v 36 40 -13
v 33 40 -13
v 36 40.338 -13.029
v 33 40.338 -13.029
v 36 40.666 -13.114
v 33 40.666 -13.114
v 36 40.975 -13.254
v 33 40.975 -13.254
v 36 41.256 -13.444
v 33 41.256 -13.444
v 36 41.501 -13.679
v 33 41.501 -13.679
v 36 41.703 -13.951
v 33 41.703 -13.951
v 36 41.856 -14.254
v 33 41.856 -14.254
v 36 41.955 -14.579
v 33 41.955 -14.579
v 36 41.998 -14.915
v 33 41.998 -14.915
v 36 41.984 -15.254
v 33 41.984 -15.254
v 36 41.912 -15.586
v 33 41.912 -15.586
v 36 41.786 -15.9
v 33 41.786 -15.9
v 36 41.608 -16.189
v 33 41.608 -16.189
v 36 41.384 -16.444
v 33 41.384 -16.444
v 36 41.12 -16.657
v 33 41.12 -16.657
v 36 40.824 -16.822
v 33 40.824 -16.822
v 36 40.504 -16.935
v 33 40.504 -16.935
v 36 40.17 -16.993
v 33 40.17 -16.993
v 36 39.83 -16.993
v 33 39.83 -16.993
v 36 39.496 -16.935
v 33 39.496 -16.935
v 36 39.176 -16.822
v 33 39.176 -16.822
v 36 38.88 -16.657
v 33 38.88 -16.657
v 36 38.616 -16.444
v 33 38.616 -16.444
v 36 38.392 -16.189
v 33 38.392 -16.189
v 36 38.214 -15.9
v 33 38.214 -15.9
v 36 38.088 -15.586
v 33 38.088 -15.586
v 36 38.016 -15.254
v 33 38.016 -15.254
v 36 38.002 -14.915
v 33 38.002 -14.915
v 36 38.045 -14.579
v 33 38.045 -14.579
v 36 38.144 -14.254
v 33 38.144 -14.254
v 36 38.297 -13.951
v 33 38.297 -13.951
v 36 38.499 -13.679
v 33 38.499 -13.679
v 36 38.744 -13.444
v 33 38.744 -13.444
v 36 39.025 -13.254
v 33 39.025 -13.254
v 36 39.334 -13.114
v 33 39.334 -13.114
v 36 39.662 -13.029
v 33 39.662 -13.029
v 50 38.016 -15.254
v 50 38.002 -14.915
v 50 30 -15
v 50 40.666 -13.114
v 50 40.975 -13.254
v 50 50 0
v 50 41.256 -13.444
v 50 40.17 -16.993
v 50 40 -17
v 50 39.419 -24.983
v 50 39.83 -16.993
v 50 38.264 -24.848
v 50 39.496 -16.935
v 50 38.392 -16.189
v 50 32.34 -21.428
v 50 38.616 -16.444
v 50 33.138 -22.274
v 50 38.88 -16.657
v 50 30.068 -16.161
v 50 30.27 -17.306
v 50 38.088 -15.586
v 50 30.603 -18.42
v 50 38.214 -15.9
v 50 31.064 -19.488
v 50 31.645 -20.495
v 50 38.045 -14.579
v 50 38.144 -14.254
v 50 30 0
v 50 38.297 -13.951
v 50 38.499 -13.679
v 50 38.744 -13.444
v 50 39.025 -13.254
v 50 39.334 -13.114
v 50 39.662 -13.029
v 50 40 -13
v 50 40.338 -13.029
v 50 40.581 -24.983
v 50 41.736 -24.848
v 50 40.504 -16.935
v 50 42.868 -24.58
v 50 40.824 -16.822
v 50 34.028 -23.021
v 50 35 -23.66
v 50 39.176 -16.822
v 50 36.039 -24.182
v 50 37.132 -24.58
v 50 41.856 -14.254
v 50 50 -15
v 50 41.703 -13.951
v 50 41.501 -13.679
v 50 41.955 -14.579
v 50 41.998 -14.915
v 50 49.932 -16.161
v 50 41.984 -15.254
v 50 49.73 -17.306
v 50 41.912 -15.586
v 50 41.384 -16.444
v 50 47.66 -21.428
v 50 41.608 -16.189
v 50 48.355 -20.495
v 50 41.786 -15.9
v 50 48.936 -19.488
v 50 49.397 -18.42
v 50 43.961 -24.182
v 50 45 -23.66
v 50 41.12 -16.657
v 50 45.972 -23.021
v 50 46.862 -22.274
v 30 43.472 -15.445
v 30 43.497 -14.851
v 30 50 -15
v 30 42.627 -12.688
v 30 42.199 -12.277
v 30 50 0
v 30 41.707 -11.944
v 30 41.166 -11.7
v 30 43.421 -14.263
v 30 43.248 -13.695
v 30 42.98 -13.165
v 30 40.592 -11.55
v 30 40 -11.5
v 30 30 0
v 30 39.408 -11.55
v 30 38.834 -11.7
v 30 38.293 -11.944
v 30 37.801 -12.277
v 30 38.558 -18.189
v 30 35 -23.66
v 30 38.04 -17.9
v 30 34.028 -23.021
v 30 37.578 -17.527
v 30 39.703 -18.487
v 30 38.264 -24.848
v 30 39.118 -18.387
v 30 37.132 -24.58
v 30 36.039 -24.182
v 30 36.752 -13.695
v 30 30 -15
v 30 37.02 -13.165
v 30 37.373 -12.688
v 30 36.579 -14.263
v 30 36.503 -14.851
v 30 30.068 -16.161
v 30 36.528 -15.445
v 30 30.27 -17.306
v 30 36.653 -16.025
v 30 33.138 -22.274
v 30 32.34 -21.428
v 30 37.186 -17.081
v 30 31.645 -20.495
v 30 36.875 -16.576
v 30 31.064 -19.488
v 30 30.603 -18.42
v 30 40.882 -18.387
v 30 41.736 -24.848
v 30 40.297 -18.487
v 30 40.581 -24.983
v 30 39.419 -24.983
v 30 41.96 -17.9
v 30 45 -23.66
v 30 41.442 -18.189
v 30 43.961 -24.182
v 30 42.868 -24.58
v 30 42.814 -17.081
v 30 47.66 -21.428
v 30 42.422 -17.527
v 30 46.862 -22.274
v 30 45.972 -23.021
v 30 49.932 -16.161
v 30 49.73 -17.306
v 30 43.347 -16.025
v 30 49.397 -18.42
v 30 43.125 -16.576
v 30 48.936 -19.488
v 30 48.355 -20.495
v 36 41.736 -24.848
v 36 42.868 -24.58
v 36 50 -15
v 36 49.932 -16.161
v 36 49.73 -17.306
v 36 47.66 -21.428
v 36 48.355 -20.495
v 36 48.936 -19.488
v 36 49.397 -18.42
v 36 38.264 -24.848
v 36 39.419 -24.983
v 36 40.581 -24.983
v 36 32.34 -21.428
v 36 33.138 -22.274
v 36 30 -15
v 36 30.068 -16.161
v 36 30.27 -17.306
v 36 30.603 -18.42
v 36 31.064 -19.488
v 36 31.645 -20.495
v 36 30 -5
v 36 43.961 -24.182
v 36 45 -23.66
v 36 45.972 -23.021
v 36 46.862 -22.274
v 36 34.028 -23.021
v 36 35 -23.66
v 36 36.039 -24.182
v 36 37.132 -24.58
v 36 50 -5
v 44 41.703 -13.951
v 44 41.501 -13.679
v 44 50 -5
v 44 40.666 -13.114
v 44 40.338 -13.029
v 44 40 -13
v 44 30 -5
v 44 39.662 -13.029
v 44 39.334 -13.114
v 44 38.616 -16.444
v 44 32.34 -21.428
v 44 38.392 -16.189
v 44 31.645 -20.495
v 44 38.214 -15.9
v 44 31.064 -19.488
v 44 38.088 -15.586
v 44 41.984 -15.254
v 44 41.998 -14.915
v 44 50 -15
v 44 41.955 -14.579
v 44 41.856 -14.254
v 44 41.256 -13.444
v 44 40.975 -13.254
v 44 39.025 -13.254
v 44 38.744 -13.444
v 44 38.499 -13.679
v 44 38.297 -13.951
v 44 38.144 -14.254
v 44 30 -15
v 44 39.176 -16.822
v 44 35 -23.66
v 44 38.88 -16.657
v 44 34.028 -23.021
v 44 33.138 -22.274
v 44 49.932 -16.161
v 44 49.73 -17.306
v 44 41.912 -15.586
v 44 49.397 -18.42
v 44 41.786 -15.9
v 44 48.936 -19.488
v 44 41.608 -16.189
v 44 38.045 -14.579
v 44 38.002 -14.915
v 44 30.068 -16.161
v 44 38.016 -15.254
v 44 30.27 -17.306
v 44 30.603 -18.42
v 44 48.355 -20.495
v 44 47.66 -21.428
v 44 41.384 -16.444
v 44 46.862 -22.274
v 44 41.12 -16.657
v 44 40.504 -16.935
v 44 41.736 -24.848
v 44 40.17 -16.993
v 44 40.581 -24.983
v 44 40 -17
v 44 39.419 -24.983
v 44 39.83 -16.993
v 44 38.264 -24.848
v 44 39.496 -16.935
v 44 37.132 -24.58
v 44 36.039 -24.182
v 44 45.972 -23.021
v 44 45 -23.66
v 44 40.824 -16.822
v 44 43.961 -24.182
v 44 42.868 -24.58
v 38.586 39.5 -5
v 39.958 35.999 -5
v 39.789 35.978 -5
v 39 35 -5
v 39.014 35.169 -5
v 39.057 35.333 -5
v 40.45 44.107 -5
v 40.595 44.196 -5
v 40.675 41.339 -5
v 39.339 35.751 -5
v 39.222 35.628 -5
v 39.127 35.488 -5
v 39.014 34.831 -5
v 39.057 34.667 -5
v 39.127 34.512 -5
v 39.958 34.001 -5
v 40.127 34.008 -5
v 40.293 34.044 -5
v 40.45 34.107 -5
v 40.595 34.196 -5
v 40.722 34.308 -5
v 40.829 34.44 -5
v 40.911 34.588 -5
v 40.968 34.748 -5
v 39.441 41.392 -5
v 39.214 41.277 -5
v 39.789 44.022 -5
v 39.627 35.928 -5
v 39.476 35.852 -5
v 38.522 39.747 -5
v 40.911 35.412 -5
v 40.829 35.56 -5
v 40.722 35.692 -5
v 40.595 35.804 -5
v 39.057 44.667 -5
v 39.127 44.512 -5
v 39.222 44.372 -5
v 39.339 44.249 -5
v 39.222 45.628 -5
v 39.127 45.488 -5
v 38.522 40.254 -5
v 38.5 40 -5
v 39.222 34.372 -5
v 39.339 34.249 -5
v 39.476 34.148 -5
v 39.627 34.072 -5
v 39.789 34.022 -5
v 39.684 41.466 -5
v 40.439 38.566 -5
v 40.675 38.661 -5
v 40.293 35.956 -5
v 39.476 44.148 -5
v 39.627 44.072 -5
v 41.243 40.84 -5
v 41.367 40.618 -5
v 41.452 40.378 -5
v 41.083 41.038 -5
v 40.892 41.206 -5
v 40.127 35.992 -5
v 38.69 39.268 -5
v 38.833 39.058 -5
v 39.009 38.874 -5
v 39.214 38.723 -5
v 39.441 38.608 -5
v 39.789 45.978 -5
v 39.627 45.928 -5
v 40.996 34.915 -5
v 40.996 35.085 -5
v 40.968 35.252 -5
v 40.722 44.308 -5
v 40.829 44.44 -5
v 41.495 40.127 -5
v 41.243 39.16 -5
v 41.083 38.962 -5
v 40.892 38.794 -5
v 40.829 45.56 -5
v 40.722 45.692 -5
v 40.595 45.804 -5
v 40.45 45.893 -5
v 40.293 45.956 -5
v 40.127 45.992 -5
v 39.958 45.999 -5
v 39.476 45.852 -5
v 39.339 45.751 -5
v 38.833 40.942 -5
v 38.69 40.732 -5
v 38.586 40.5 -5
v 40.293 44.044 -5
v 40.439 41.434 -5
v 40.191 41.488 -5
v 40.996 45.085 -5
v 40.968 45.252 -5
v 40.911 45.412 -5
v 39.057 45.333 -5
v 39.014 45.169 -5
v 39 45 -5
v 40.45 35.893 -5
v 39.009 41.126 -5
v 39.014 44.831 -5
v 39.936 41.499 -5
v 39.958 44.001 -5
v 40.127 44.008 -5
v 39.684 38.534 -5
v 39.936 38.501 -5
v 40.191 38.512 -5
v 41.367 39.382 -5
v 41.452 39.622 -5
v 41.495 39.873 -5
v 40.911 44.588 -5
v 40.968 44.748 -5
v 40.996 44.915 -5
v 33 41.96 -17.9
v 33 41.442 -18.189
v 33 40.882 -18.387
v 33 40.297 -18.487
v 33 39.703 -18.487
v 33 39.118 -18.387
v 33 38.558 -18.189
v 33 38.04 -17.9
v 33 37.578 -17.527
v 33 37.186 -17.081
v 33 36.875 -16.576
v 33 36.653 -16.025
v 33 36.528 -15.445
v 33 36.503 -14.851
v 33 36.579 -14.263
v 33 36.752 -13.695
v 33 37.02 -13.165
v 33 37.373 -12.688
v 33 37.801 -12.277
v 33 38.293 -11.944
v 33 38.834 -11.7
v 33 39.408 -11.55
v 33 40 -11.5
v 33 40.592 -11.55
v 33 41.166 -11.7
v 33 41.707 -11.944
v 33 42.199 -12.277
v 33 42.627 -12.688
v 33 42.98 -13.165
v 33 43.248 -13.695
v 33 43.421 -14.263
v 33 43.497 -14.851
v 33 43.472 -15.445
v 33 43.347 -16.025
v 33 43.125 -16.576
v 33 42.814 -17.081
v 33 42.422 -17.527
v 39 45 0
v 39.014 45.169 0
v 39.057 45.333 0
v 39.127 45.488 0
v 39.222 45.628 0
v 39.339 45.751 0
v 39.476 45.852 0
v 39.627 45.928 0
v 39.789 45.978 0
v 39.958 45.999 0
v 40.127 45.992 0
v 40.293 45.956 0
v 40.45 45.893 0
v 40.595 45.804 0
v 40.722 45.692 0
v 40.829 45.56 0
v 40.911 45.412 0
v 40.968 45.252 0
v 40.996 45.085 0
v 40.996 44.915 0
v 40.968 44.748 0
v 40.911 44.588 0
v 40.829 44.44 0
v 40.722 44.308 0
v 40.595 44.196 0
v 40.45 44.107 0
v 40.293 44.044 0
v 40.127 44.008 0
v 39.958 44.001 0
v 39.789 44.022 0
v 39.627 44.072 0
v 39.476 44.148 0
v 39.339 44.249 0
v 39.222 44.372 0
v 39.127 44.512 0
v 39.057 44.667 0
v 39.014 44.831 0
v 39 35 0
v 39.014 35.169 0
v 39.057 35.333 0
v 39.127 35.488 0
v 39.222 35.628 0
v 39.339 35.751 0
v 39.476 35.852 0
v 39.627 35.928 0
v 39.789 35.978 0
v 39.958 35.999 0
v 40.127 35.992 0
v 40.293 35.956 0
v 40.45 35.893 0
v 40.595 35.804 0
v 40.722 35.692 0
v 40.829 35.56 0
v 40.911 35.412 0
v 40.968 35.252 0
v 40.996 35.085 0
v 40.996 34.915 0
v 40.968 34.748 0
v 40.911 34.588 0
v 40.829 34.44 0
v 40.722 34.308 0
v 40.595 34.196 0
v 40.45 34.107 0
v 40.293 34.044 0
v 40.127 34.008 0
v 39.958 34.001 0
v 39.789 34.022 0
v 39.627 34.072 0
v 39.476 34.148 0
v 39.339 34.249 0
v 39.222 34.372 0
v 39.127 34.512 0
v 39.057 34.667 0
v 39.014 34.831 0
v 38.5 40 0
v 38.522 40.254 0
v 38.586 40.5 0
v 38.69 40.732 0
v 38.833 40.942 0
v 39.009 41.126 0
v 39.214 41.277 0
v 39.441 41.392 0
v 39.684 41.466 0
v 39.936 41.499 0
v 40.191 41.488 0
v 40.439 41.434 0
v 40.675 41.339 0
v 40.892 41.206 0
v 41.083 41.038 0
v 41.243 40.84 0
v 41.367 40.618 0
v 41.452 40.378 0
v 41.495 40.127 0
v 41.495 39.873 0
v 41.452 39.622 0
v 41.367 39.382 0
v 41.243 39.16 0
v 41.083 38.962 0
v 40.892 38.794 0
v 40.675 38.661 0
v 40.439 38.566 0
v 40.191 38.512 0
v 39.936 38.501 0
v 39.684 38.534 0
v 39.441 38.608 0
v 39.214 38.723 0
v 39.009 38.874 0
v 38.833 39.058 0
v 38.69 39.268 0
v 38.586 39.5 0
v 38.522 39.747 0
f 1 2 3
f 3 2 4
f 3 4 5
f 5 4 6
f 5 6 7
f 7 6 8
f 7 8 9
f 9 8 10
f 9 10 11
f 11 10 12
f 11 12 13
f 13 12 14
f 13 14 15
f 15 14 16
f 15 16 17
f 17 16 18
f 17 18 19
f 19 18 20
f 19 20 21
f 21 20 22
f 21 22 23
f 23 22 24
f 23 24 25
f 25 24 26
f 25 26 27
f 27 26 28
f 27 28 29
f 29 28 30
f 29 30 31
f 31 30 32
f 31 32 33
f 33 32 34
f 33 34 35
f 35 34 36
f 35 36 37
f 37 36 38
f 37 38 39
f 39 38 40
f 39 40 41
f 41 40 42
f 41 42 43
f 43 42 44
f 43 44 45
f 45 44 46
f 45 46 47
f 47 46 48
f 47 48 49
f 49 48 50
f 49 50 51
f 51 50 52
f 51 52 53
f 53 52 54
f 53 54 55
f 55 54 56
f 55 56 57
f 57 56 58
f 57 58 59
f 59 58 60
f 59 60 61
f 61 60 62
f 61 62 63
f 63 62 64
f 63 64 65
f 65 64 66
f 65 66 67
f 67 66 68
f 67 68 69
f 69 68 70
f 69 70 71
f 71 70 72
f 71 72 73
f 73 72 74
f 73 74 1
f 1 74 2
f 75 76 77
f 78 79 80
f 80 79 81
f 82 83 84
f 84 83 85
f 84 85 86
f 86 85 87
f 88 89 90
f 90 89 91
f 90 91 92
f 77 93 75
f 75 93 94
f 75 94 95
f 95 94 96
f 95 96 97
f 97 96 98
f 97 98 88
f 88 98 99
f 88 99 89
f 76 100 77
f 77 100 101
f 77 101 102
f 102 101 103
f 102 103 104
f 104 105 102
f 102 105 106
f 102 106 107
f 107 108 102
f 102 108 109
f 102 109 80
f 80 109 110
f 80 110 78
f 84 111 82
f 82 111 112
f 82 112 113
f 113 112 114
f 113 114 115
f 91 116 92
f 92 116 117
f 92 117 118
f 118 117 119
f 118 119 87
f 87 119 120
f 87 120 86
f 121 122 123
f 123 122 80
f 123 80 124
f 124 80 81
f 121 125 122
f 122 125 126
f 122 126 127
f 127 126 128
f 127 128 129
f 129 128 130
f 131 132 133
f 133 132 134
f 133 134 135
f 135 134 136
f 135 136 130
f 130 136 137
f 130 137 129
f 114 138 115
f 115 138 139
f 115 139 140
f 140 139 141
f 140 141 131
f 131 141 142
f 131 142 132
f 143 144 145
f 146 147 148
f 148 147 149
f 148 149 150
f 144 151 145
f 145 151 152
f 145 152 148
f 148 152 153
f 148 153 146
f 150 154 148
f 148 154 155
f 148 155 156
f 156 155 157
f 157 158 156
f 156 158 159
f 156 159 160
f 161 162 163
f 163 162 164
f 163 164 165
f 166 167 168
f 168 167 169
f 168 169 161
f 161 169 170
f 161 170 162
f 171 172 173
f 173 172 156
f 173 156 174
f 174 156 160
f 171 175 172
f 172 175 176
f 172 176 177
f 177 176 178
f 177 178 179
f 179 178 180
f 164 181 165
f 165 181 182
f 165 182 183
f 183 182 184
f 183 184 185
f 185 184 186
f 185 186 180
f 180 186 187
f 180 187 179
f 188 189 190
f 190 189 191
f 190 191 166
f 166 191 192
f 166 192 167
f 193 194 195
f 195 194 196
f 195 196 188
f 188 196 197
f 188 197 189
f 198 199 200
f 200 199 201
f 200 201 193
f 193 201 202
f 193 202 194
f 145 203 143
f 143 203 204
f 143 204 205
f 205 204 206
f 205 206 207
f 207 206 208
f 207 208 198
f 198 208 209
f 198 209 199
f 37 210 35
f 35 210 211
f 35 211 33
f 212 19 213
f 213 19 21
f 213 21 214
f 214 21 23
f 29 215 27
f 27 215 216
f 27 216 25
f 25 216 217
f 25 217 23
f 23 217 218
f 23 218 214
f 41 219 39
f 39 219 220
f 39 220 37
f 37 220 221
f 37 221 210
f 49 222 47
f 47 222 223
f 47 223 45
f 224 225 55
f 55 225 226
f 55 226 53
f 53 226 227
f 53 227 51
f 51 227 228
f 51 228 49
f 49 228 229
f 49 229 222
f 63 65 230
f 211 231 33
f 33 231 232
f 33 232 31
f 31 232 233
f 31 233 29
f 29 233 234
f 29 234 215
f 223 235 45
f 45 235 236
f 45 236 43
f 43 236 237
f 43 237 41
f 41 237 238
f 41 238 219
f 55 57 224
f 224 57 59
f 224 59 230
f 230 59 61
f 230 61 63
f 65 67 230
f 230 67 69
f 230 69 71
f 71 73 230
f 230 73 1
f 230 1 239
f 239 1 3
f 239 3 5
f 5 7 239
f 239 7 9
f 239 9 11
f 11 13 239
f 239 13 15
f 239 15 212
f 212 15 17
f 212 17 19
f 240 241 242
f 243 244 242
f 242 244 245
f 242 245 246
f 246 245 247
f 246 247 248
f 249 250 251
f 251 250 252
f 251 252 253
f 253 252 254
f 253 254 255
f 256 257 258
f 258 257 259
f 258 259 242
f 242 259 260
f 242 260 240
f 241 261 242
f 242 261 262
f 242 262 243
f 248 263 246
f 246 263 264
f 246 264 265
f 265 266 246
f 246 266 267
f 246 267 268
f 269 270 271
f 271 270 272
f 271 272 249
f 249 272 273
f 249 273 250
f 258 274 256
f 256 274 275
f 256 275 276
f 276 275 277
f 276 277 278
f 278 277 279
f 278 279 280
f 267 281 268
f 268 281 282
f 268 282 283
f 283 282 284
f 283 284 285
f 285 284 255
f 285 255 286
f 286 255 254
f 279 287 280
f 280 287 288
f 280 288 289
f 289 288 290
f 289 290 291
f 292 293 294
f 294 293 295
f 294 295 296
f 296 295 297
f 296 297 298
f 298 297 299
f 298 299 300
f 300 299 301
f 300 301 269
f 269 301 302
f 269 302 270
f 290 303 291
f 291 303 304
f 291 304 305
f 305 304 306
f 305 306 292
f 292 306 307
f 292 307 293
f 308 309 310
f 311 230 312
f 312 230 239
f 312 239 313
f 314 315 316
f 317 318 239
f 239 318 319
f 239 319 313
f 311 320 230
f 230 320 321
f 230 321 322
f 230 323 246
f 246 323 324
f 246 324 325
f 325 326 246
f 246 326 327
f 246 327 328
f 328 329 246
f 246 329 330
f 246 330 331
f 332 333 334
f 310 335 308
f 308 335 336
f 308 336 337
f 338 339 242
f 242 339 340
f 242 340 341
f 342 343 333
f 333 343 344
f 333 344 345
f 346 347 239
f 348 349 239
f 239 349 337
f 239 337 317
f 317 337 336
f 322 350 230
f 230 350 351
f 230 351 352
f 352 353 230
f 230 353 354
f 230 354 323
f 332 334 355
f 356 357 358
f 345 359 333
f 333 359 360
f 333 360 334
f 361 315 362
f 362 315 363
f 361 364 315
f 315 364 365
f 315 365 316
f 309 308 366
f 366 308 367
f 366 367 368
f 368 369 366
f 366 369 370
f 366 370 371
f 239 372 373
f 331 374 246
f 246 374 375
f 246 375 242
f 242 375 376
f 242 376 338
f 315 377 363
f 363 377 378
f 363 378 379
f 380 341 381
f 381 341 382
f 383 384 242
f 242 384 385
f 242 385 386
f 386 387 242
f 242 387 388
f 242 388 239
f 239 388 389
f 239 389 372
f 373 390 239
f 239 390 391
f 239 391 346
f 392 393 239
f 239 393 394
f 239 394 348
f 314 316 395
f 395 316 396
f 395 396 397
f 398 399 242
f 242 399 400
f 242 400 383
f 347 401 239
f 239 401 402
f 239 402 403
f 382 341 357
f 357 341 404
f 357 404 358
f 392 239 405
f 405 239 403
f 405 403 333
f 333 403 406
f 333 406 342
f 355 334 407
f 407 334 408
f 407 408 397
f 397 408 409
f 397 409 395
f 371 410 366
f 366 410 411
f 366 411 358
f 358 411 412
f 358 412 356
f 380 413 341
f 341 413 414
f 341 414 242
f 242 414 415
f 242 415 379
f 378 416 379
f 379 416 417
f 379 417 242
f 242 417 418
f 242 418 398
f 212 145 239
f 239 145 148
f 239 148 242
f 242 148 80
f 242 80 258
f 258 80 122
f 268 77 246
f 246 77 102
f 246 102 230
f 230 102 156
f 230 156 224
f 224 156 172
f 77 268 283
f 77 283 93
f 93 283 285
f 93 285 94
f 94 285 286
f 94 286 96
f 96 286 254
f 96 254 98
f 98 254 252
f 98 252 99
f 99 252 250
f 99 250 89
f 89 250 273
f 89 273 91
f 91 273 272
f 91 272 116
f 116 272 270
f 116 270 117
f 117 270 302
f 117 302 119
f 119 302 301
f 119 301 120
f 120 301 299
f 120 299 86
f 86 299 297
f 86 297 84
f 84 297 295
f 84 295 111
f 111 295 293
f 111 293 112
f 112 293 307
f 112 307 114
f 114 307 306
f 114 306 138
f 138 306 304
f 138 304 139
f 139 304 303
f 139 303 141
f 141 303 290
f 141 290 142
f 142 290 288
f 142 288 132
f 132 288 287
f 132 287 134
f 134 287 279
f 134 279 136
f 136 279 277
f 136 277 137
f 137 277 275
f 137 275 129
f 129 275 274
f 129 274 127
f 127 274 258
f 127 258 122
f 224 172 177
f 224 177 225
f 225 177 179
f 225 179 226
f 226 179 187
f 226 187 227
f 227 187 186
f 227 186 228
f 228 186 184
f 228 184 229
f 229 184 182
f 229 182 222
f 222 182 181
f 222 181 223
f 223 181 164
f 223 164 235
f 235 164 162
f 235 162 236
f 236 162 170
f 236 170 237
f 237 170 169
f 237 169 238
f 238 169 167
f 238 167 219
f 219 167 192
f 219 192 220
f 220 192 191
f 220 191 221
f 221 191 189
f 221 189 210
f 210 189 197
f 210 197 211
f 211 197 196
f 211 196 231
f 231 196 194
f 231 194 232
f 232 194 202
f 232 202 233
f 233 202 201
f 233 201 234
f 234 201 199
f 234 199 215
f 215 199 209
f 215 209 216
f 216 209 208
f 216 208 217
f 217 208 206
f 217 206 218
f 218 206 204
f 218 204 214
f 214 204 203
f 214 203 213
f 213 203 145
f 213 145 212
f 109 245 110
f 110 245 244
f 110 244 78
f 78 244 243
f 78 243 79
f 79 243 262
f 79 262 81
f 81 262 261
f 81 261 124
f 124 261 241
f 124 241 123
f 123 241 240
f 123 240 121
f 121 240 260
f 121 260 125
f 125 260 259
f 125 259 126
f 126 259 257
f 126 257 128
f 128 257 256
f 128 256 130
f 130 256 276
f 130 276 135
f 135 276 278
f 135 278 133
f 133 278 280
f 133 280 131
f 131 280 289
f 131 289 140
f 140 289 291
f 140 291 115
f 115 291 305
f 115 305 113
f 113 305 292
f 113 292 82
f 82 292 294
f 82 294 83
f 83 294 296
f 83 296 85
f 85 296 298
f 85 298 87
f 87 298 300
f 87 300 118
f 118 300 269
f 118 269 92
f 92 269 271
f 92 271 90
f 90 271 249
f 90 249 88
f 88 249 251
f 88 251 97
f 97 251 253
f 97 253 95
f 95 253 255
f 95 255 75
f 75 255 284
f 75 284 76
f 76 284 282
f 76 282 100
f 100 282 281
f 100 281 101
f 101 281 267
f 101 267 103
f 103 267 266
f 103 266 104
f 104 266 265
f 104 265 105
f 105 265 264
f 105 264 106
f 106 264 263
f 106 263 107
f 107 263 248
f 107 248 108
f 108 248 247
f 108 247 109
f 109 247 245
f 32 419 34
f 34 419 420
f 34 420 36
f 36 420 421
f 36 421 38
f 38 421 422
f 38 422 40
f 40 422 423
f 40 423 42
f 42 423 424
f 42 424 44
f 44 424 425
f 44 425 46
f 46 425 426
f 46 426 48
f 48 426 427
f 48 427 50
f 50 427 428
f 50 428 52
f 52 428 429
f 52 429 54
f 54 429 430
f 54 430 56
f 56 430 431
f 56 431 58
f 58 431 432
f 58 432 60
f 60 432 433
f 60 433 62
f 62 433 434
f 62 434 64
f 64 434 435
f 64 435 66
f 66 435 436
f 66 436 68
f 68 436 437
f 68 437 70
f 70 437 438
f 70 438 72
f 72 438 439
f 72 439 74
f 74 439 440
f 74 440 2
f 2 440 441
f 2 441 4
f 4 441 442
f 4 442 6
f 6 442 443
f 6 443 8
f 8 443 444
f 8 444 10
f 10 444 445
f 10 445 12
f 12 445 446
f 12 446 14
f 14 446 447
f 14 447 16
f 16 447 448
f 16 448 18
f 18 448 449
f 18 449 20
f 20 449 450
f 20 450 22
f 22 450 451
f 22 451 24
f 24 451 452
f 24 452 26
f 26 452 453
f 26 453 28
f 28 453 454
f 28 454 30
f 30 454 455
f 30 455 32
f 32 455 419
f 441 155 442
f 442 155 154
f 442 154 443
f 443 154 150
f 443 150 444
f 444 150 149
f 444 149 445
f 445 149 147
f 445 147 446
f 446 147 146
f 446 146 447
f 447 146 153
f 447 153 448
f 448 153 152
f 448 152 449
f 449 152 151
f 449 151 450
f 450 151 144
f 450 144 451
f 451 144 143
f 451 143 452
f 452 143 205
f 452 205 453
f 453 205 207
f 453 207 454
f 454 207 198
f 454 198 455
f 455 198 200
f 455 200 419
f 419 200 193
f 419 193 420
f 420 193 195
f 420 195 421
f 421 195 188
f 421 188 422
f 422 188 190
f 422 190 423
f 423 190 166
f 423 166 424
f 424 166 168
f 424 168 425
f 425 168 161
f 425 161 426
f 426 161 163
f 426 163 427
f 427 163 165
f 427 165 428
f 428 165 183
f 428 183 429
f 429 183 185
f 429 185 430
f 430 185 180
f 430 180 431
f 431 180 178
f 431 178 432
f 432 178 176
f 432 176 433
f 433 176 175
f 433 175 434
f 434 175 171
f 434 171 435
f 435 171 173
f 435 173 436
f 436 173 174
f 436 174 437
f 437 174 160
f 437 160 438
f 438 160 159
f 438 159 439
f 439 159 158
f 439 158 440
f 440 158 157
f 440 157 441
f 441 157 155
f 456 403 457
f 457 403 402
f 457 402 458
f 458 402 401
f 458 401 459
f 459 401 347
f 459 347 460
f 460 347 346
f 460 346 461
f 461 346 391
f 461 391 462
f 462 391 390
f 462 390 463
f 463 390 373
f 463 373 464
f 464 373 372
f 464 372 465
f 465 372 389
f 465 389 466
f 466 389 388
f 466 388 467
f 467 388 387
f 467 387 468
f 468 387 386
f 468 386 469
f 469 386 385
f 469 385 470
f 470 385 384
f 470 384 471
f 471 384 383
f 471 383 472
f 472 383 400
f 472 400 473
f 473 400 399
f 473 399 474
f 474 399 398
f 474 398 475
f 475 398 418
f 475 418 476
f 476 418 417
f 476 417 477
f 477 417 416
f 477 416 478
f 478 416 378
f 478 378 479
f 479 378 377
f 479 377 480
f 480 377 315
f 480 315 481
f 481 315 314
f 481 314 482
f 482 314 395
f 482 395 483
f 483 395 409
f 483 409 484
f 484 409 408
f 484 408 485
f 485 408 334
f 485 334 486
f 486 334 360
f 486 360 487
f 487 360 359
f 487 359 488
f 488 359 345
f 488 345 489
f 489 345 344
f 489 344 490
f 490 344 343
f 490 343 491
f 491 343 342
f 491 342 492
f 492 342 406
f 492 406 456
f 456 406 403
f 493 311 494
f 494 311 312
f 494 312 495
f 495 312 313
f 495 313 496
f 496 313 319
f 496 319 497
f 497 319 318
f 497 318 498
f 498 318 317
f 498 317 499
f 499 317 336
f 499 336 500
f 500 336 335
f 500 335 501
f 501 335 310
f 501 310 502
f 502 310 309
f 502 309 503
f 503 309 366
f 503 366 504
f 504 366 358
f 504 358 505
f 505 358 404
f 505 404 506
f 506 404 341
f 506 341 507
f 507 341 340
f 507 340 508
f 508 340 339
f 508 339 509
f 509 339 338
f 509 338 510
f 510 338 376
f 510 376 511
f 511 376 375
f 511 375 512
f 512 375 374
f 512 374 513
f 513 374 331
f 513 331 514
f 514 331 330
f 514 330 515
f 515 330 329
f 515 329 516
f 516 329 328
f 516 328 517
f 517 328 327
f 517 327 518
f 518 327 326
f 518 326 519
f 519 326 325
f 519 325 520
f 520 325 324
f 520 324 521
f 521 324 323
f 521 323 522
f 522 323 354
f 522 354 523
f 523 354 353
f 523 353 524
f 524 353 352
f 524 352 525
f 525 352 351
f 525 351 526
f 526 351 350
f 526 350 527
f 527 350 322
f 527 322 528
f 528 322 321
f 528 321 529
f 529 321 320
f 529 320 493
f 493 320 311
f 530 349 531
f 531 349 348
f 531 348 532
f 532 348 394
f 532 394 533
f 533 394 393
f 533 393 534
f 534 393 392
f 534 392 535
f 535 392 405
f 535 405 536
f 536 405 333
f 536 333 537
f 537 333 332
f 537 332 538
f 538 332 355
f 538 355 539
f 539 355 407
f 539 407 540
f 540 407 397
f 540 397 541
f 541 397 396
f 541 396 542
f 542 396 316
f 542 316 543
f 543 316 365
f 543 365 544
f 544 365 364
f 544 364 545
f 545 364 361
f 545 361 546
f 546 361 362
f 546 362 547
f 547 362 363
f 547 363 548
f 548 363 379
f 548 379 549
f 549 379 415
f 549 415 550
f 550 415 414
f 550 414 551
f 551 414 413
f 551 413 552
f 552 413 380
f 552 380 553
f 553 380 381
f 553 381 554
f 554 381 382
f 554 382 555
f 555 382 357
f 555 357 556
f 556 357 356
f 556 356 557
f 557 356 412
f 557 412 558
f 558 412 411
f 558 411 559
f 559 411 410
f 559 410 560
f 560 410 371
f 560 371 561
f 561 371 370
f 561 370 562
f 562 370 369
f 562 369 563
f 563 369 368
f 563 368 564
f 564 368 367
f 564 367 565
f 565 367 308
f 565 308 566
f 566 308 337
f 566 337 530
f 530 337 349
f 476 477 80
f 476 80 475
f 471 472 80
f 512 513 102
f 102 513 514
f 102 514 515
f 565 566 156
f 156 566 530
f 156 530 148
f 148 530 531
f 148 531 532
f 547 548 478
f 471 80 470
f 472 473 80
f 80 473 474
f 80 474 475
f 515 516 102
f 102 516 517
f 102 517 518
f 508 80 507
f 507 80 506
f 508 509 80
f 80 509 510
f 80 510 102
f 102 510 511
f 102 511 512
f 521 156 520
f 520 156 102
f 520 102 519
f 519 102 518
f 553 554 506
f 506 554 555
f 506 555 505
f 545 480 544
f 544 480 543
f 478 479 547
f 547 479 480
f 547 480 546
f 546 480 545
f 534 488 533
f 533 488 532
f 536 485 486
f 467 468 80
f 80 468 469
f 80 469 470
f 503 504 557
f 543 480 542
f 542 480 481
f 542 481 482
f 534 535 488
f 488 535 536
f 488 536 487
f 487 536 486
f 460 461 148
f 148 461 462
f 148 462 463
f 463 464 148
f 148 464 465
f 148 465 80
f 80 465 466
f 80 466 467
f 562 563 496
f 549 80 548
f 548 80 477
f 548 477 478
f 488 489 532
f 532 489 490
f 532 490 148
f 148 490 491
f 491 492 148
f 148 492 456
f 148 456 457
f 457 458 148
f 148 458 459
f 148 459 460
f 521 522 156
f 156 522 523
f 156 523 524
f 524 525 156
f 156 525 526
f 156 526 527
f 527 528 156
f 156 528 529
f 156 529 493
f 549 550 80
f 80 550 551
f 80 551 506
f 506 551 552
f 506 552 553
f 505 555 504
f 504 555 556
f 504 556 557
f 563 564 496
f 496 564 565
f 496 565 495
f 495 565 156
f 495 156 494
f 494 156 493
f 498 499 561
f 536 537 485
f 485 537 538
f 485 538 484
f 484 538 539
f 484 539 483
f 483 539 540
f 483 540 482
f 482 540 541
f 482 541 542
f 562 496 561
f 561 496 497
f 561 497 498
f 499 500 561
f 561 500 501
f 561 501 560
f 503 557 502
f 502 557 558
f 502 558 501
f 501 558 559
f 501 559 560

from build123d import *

# Parameters (mm, degrees)
SKETCH1_W           = 80
SKETCH1_H           = 80
BOSS_EXTRUDE1_DEPTH = 2
SKETCH2_W           = 80
SKETCH2_H           = 80
SKETCH2_W_2         = 78
SKETCH2_H_2         = 78
BOSS_EXTRUDE2_DEPTH = 15
FILLET1_R           = 20
FILLET2_R           = 10
FILLET3_R           = 20
FILLET4_R           = 10
SKETCH3_R           = 1
BOSS_EXTRUDE3_DEPTH = 6
SKETCH4_W           = 10
SKETCH4_H           = 10
BOSS_EXTRUDE4_DEPTH = 5
SKETCH5_W           = 6
SKETCH5_H           = 20
BOSS_EXTRUDE5_DEPTH = 20
CUT_EXTRUDE1_DEPTH  = 23
SKETCH7_R           = 2
CUT_EXTRUDE2_DEPTH  = 23
SKETCH8_R           = 3.5
CUT_EXTRUDE3_DEPTH  = 3
SKETCH9_R           = 1
CUT_EXTRUDE4_DEPTH  = 18
SKETCH10_R          = 1.5
CUT_EXTRUDE5_DEPTH  = 18
SKETCH11_R          = 69.283397128
CUT_EXTRUDE6_DEPTH  = 37


with BuildPart() as part:
    # Sketch1 → Boss-Extrude1 (new body)
    with BuildSketch(Plane.XY):
        with Locations((40, 40)):
            Rectangle(SKETCH1_W, SKETCH1_H)
    extrude(amount=BOSS_EXTRUDE1_DEPTH)

    # Sketch2 → Boss-Extrude2 (add)
    with BuildSketch(Plane.XY.offset(2)):
        with Locations((40, 40)):
            Rectangle(SKETCH2_W, SKETCH2_H)
        with Locations((40, 40)):
            Rectangle(SKETCH2_W_2, SKETCH2_H_2, mode=Mode.SUBTRACT)
    extrude(amount=BOSS_EXTRUDE2_DEPTH)

    # Fillet1
    fillet1_edges = [part.edges().sort_by_distance(p)[0] for p in [
        (1, 79, 9.5),
        (1, 1, 9.5),
        (79, 1, 9.5),
        (79, 79, 9.5),
    ]]
    fillet(fillet1_edges, radius=FILLET1_R)

    # Fillet2
    fillet2_edges = [part.edges().sort_by_distance(p)[0] for p in [
        (40, 1, 2),
        (79, 40, 2),
        (40, 79, 2),
        (1, 40, 2),
        (6.857864376, 73.142135624, 2),
        (73.142135624, 73.142135624, 2),
        (6.857864376, 6.857864376, 2),
        (73.142135624, 6.857864376, 2),
    ]]
    fillet(fillet2_edges, radius=FILLET2_R)

    # Fillet3
    fillet3_edges = [part.edges().sort_by_distance(p)[0] for p in [
        (0, 80, 8.5),
        (80, 80, 8.5),
        (80, 0, 8.5),
        (0, 0, 8.5),
    ]]
    fillet(fillet3_edges, radius=FILLET3_R)

    # Fillet4
    fillet4_edges = [part.edges().sort_by_distance(p)[0] for p in [
        (80, 40, 0),
        (0, 40, 0),
        (40, 80, 0),
        (40, 0, 0),
        (5.857864376, 5.857864376, 0),
        (5.857864376, 74.142135624, 0),
        (74.142135624, 74.142135624, 0),
        (74.142135624, 5.857864376, 0),
    ]]
    fillet(fillet4_edges, radius=FILLET4_R)

    # Sketch3 → Boss-Extrude3 (add)
    with BuildSketch(Plane.XY.offset(17)):
        with BuildLine():
            Line((72.292824946, 5.37212195), (70.635028843, 4.105439789))
            Line((70.635028843, 4.105439789), (70.635028843, 7.564971157))
            ThreePointArc((70.635028843, 7.564971157), (71.162236636, 8.837763364), (72.435028843, 9.364971157))
            Line((72.435028843, 9.364971157), (76.003973901, 9.364971157))
            Line((76.003973901, 9.364971157), (72.292824946, 5.37212195))
        make_face()
        with Locations((72.435028843, 7.564971157)):
            Circle(SKETCH3_R, mode=Mode.SUBTRACT)
        with BuildLine():
            Line((9.364971157, 4.105439789), (9.364971157, 7.564971157))
            ThreePointArc((9.364971157, 7.564971157), (8.837763364, 8.837763364), (7.564971157, 9.364971157))
            Line((7.564971157, 9.364971157), (3.996026099, 9.364971157))
            Line((3.996026099, 9.364971157), (7.707175054, 5.37212195))
            Line((7.707175054, 5.37212195), (9.364971157, 4.105439789))
        make_face()
        with Locations((7.564971157, 7.564971157)):
            Circle(SKETCH3_R, mode=Mode.SUBTRACT)
        with BuildLine():
            Line((70.635028843, 75.894560211), (70.635028843, 72.435028843))
            ThreePointArc((70.635028843, 72.435028843), (71.162236636, 71.162236636), (72.435028843, 70.635028843))
            Line((72.435028843, 70.635028843), (76.003973901, 70.635028843))
            Line((76.003973901, 70.635028843), (72.292824946, 74.62787805))
            Line((72.292824946, 74.62787805), (70.635028843, 75.894560211))
        make_face()
        with Locations((72.435028843, 72.435028843)):
            Circle(SKETCH3_R, mode=Mode.SUBTRACT)
        with BuildLine():
            Line((7.707175054, 74.62787805), (9.364971157, 75.894560211))
            Line((9.364971157, 75.894560211), (9.364971157, 72.435028843))
            ThreePointArc((9.364971157, 72.435028843), (8.837763364, 71.162236636), (7.564971157, 70.635028843))
            Line((7.564971157, 70.635028843), (3.996026099, 70.635028843))
            Line((3.996026099, 70.635028843), (7.707175054, 74.62787805))
        make_face()
        with Locations((7.564971157, 72.435028843)):
            Circle(SKETCH3_R, mode=Mode.SUBTRACT)
    extrude(amount=-BOSS_EXTRUDE3_DEPTH)

    # Sketch4 → Boss-Extrude4 (add)
    with BuildSketch(Plane(origin=(0, 0, 0), x_dir=(-1, 0, 0), z_dir=(0, 0, -1))):
        with Locations((-35, 35)):
            Rectangle(SKETCH4_W, SKETCH4_H)
        with Locations((-35, 45)):
            Rectangle(SKETCH4_W, SKETCH4_H)
        with Locations((-45, 45)):
            Rectangle(SKETCH4_W, SKETCH4_H)
        with Locations((-45, 35)):
            Rectangle(SKETCH4_W, SKETCH4_H)
    extrude(amount=BOSS_EXTRUDE4_DEPTH)

    # Sketch5 → Boss-Extrude5 (add)
    with BuildSketch(Plane(origin=(0, 0, -5), x_dir=(-1, 0, 0), z_dir=(0, 0, -1))):
        with Locations((-33, 40)):
            Rectangle(SKETCH5_W, SKETCH5_H)
        with Locations((-47, 40)):
            Rectangle(SKETCH5_W, SKETCH5_H)
    extrude(amount=BOSS_EXTRUDE5_DEPTH)

    # Sketch6 → Cut-Extrude1 (cut)
    with BuildSketch(Plane.ZY.offset(-30)):
        with BuildLine():
            Line((-15, 30), (-19.756708154, 21.186247086))
            Line((-19.756708154, 21.186247086), (-29.168380108, 27.64799201))
            Line((-29.168380108, 27.64799201), (-29.168380108, 53.846153493))
            Line((-29.168380108, 53.846153493), (-15, 50))
            ThreePointArc((-15, 50), (-25, 40), (-15, 30))
        make_face()
    extrude(amount=-CUT_EXTRUDE1_DEPTH, mode=Mode.SUBTRACT)

    # Sketch7 → Cut-Extrude2 (cut)
    with BuildSketch(Plane.ZY.offset(-30)):
        with Locations((-15, 40)):
            Circle(SKETCH7_R)
    extrude(amount=-CUT_EXTRUDE2_DEPTH, mode=Mode.SUBTRACT)

    # Sketch8 → Cut-Extrude3 (cut)
    with BuildSketch(Plane.ZY.offset(-30)):
        with Locations((-15, 40)):
            Circle(SKETCH8_R)
    extrude(amount=-CUT_EXTRUDE3_DEPTH, mode=Mode.SUBTRACT)

    # Sketch9 → Cut-Extrude4 (cut)
    with BuildSketch(Plane(origin=(0, 0, -5), x_dir=(-1, 0, 0), z_dir=(0, 0, -1))):
        with Locations((-40, 45)):
            Circle(SKETCH9_R)
        with Locations((-40, 35)):
            Circle(SKETCH9_R)
    extrude(amount=-CUT_EXTRUDE4_DEPTH, mode=Mode.SUBTRACT)

    # Sketch10 → Cut-Extrude5 (cut)
    with BuildSketch(Plane(origin=(0, 0, -5), x_dir=(-1, 0, 0), z_dir=(0, 0, -1))):
        with Locations((-40, 40)):
            Circle(SKETCH10_R)
    extrude(amount=-CUT_EXTRUDE5_DEPTH, mode=Mode.SUBTRACT)

    # Sketch11 → Cut-Extrude6 (cut)
    with BuildSketch(Plane(origin=(0, 0, 0), x_dir=(-1, 0, 0), z_dir=(0, 0, -1))):
        with Locations((-39.654791549, 38.656536987)):
            Circle(SKETCH11_R)
    extrude(amount=-CUT_EXTRUDE6_DEPTH, mode=Mode.SUBTRACT)


solid = part.part
